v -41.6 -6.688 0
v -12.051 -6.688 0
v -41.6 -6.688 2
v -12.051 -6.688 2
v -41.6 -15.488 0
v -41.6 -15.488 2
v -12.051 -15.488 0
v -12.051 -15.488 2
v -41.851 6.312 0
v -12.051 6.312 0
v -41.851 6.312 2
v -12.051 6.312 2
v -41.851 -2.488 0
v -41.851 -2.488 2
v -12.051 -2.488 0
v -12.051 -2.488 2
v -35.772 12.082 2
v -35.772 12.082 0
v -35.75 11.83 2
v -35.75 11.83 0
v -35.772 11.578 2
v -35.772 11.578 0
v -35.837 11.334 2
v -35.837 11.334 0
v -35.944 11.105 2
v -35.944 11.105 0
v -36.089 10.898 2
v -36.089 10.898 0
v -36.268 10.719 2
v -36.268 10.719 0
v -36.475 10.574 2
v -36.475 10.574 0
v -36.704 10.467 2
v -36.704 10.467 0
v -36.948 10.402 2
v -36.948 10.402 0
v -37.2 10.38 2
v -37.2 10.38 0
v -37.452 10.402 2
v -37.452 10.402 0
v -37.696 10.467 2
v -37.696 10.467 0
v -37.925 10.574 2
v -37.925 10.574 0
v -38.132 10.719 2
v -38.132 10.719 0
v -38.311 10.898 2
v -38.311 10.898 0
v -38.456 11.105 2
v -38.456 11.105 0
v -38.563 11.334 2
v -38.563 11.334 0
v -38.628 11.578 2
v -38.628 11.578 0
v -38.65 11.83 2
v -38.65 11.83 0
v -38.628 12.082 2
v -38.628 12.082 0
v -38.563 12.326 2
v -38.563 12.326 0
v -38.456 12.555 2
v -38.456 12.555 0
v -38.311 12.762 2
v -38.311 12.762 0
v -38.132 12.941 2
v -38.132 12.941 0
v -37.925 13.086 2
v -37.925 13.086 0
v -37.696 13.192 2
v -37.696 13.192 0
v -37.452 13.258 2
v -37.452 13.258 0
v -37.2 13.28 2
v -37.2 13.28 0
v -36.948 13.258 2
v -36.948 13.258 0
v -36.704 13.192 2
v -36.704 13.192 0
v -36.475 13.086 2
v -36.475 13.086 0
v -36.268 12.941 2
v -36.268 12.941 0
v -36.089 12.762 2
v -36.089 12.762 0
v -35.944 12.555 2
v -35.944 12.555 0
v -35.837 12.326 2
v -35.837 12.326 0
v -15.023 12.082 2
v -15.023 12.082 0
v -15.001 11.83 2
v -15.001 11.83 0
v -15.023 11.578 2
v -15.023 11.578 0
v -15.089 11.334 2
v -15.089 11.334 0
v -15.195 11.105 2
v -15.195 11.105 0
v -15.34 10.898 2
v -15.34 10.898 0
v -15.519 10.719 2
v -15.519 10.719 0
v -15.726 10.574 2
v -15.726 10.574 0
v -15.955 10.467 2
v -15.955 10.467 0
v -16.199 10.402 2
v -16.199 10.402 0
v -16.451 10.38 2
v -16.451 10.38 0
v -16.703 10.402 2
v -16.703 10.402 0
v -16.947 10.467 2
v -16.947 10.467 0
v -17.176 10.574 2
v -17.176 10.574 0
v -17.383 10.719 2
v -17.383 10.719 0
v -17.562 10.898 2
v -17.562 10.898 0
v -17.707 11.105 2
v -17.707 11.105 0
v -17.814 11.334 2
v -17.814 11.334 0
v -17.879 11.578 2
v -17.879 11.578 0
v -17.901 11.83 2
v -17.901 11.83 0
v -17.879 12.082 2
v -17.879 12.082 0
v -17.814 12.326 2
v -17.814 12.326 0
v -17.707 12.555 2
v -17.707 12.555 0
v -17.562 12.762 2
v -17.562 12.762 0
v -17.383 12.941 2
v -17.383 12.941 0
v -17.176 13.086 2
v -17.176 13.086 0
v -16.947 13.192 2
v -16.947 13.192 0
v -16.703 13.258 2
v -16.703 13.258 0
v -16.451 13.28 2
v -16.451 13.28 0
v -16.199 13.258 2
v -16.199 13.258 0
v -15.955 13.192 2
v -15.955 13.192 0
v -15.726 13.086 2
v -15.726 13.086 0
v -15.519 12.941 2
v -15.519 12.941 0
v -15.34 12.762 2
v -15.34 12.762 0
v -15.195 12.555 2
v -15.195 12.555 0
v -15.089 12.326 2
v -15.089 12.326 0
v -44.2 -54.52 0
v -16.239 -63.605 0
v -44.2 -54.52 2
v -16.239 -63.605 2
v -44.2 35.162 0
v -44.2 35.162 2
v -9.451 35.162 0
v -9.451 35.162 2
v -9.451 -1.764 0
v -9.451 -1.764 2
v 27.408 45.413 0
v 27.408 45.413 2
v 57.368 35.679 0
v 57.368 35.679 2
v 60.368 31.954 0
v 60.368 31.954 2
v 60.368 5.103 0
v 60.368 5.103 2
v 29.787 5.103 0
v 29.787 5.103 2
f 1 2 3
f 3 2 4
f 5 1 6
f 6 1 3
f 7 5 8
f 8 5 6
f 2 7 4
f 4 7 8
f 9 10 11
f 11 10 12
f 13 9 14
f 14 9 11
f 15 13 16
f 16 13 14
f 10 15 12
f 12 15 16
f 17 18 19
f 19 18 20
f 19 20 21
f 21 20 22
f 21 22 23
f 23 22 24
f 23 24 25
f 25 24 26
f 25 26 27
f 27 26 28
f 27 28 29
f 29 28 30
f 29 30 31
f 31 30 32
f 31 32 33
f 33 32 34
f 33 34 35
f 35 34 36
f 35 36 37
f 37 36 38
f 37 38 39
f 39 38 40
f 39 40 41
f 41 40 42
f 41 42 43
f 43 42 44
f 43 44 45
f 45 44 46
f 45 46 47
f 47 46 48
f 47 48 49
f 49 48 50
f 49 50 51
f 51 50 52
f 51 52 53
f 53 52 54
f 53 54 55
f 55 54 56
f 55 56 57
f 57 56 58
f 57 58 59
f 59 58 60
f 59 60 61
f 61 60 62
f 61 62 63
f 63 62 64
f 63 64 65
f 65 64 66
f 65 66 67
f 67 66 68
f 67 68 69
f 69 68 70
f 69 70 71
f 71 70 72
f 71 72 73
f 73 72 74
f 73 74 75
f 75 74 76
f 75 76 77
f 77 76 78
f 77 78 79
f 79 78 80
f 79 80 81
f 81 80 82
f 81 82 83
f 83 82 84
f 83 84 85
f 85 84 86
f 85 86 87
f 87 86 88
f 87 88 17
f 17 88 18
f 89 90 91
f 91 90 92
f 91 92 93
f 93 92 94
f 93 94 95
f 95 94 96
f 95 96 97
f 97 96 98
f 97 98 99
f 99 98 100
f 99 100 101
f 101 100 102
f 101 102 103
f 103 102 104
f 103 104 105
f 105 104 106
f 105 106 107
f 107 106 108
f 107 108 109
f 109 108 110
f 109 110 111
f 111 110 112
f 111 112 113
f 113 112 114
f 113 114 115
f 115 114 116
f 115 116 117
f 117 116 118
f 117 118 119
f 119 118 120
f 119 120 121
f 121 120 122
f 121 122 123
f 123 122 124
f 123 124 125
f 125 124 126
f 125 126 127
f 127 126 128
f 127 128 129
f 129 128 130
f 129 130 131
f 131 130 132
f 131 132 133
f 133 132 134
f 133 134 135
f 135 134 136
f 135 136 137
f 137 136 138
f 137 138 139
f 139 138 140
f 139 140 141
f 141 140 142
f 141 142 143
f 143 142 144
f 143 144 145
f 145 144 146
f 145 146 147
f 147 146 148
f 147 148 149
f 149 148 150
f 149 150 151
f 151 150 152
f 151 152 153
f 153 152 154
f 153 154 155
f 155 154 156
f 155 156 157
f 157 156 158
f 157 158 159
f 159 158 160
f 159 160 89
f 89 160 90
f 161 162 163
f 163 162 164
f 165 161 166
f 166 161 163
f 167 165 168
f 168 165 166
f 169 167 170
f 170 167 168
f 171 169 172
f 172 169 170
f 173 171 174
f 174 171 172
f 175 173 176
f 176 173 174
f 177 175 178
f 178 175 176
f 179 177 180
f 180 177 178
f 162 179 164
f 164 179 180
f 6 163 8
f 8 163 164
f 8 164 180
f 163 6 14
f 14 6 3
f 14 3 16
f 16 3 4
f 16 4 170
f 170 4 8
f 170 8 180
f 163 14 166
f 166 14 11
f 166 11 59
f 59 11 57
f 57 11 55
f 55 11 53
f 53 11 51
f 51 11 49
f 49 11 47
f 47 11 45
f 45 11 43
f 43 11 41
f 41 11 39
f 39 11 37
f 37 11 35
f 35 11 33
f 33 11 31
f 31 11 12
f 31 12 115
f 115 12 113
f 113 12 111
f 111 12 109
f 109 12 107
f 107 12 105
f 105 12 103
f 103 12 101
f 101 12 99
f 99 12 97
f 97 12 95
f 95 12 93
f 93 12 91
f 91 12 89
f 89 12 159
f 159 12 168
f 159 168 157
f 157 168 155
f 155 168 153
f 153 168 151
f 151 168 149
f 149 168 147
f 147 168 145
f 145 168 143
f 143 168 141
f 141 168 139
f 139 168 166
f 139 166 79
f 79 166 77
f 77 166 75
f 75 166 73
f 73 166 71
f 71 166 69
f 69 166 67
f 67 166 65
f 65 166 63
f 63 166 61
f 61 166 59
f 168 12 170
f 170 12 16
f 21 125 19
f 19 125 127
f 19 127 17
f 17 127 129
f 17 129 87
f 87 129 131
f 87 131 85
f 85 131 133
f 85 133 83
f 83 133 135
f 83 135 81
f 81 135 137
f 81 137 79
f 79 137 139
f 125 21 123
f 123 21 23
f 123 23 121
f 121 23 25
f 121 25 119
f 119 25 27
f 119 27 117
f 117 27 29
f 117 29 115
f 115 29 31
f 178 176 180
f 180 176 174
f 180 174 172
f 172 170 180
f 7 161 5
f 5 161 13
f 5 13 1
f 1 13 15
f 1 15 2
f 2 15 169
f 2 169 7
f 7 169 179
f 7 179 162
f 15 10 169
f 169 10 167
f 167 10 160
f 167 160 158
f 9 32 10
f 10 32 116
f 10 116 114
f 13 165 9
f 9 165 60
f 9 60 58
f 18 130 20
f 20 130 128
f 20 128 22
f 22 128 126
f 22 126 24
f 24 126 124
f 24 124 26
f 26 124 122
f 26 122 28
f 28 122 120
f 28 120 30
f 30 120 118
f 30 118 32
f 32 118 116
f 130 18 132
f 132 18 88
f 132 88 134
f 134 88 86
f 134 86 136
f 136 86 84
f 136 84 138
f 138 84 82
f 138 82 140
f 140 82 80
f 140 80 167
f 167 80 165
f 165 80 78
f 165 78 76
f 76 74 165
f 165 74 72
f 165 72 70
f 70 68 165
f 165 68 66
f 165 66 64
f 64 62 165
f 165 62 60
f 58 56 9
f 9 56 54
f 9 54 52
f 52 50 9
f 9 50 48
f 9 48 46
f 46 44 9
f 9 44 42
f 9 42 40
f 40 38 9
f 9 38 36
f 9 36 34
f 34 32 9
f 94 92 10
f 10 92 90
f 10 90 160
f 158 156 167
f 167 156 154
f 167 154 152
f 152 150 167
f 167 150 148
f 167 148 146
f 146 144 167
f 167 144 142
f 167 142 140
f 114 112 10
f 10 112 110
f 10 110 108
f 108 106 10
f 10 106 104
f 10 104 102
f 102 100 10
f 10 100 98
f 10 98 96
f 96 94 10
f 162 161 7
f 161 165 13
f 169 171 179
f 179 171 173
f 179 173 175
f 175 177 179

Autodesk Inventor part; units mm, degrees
ref_plane "YZ Plane" through (0, 0, 0) normal (1, 0, 0) x (0, 1, 0)
ref_plane "XZ Plane" through (0, 0, 0) normal (0, 1, 0) x (-1, 0, 0)
ref_plane "XY Plane" through (0, 0, 0) normal (0, 0, 1) x (1, 0, 0)
ref_plane "Work Plane1" through (0, 0, 0) normal (0, 0, 1) x (1, 0, 0)
sketch "Sketch1" plane through (0, 0, 0) normal (0, 0, 1) x (1, 0, 0)
  circle A0 centre (-16.4512, 11.8299) radius 1.45 projected
  circle A1 centre (-37.2, 11.8299) radius 1.45 projected
  line L0 (-41.2012, 5.1624) -> (-41.2012, -2.0876) projected
  line L1 (-41.2012, -2.0876) -> (-38.2, -2.0876) projected
  line L2 (-38.2, -2.0876) -> (-38.2, -7.0876) projected
  line L3 (-38.2, -7.0876) -> (-41.2, -7.0876) projected
  line L4 (-41.2, -7.0876) -> (-41.2, -48.1342) projected
  line L5 (-41.2, -48.1342) -> (-20.7938, -54.7646) projected
  line L6 (-20.7938, -54.7646) -> (28.3237, 8.1029) projected
  line L7 (28.3237, 8.1029) -> (54.2162, 8.1029) projected
  line L8 (54.2162, 8.1029) -> (54.2162, 31.454) projected
  line L9 (54.2162, 31.454) -> (27.1735, 40.2407) projected
  line L10 (27.1735, 40.2407) -> (-12.4512, -10.4765) projected
  line L11 (-12.4512, -10.4765) -> (-12.4512, 5.6624) projected
  line L12 (-12.4512, 5.6624) -> (-15.7012, 5.6624) projected
  line L13 (-15.7012, 5.6624) -> (-15.7012, 8.1624) projected
  line L14 (-15.7012, 8.1624) -> (-12.4512, 8.1624) projected
  line L15 (-12.4512, 8.1624) -> (-12.4512, 32.1624) projected
  line L16 (-31.5338, 32.1624) -> (-41.2, 32.1624) projected
  line L17 (-41.2, 32.1624) -> (-41.2, 8.1624) projected
  line L18 (-41.2, 8.1624) -> (-38.2, 8.1624) projected
  line L19 (-38.2, 8.1624) -> (-38.2, 5.6624) projected
  line L20 (-38.2, 5.6624) -> (-41.2, 5.6624) projected
  line L21 (-41.2, 5.6624) -> (-41.2, 5.1624) projected
  line L22 (-41.2, 5.1624) -> (-41.2012, 5.1624) projected
  line L23 (-12.7012, -2.0876) -> (-12.7012, -7.0876) projected
  line L24 (-12.7012, -7.0876) -> (-15.7012, -7.0876) projected
  line L25 (-15.7012, -7.0876) -> (-15.7012, -2.0876) projected
  line L26 (-15.7012, -2.0876) -> (-12.7012, -2.0876) projected
  line L27 (-16.239, -63.6047) -> (29.7869, 5.1029) projected
  line L28 (29.7869, 5.1029) -> (60.3683, 5.1029) projected
  line L29 (60.3683, 5.1029) -> (60.3683, 31.9539) projected
  line L30 (60.3683, 31.9539) -> (57.3683, 35.6787) projected
  line L31 (57.3683, 35.6787) -> (27.4078, 45.4135) projected
  line L32 (27.4078, 45.4135) -> (-9.4512, -1.7639) projected
  line L33 (-9.4512, -1.7639) -> (-9.4512, 35.1624) projected
  line L34 (-9.4512, 35.1624) -> (-42.2, 35.1624) projected
  line L35 (-42.2, 35.1624) -> (-44.2, 35.1624) projected
  line L36 (-44.2, 35.1624) -> (-44.2, -54.5196) projected
  line L37 (-44.2, -54.5196) -> (-16.239, -63.6047) projected
  line L38 (-41.2, 5.1624) -> (-41.2, 5.6624) projected
  line L39 (-41.2, 5.6624) -> (-38.2, 5.6624) projected
  line L40 (-38.2, 5.6624) -> (-38.2, 8.1624) projected
  line L41 (-38.2, 8.1624) -> (-41.2, 8.1624) projected
  line L42 (-41.2, 8.1624) -> (-41.2, 32.1624) projected
  line L43 (-41.2, 32.1624) -> (-12.4512, 32.1624) projected
  line L44 (-12.4512, 32.1624) -> (-12.4512, 8.1624) projected
  line L45 (-12.4512, 8.1624) -> (-15.7012, 8.1624) projected
  line L46 (-15.7012, 8.1624) -> (-15.7012, 5.6624) projected
  line L47 (-15.7012, 5.6624) -> (-12.4512, 5.6624) projected
  line L48 (-12.4512, 5.6624) -> (-12.4512, -10.4765) projected
  line L49 (-12.4512, -10.4765) -> (27.1735, 40.2407) projected
  line L50 (27.1735, 40.2407) -> (54.2162, 31.454) projected
  line L51 (54.2162, 31.454) -> (54.2162, 8.1029) projected
  line L52 (54.2162, 8.1029) -> (28.3237, 8.1029) projected
  line L53 (28.3237, 8.1029) -> (-20.7938, -54.7646) projected
  line L54 (-20.7938, -54.7646) -> (-41.2, -48.1342) projected
  line L55 (-41.2, -48.1342) -> (-41.2, -7.0876) projected
  line L56 (-41.2, -7.0876) -> (-38.2, -7.0876) projected
  line L57 (-38.2, -7.0876) -> (-38.2, -2.0876) projected
  line L58 (-38.2, -2.0876) -> (-41.2012, -2.0876) projected
  line L59 (-41.2012, -2.0876) -> (-41.2012, 5.1624) projected
  line L60 (-41.2012, 5.1624) -> (-41.2, 5.1624) projected
  circle A2 centre (43.9499, 17.9141) radius 1.4 projected
  circle A3 centre (43.9499, 30.4141) radius 1.4 projected
  line L61 (-31.5338, 25.1624) -> (-31.5338, 32.1624) projected
  line L62 (-12.4512, 32.1624) -> (-22.3686, 32.1624) projected
  line L63 (-22.3686, 32.1624) -> (-22.3686, 25.1624) projected
  line L64 (-22.3686, 25.1624) -> (-31.5338, 25.1624) projected
extrude "Extrusion1" add sketch "Sketch1" along normal blind 2 contours L21 L20 L19 L18 L17 L16 L61 L64 L63 L43 L15 L14 L13 L12 L11 L10 L9 L8 L7 L6 L5 L4 L3 L2 L1 L0 | L43 L63 L64 L61 | L23 L24 L25 L26 | L37 L36 L35 L34 L33 L32 L31 L30 L29 L28 L27 | A2 | A3
sketch "Sketch4" plane through (0, 0, 2) normal (0, 0, 1) x (1, 0, 0)
  line L0 (-12.4512, -7.0876) -> (-12.4512, -15.0876) projected
  line L1 (-12.4512, -15.0876) -> (-41.2, -15.0876) projected
  line L2 (-41.2, -15.0876) -> (-41.2, -7.0876) projected
  line L3 (-41.2, -7.0876) -> (-12.4512, -7.0876) projected
  line L4 (-41.4512, -2.0876) -> (-41.4512, 5.9124) projected
  line L5 (-41.4512, 5.9124) -> (-12.4512, 5.9124) projected
  line L6 (-12.4512, 5.9124) -> (-12.4512, -2.0876) projected
  line L7 (-12.4512, -2.0876) -> (-41.4512, -2.0876) projected
  line L8 (31.1264, -1.592) -> (36.5437, 2.1484) projected
  line L9 (36.5437, 2.1484) -> (37.0695, 3.5361) projected
  line L10 (37.0695, 3.5361) -> (60.3683, 9.779) projected
  line L11 (60.3683, 9.779) -> (60.3683, 9.784) projected
  line L12 (60.3683, 9.784) -> (60.3683, 31.9539) projected
  line L13 (60.3683, 31.9539) -> (57.3683, 35.9287) projected
  line L14 (57.3683, 35.9287) -> (27.5635, 45.6128) projected
  line L15 (27.5635, 45.6128) -> (-9.4512, -1.7639) projected
  line L16 (-9.4512, -1.7639) -> (-9.4512, 35.4124) projected
  line L17 (-9.4512, 35.4124) -> (-44.2, 35.4124) projected
  line L18 (-44.2, 35.4124) -> (-44.2, -54.5196) projected
  line L19 (-44.2, -54.5196) -> (-16.239, -63.6047) projected
  line L20 (-16.239, -63.6047) -> (12.0348, -27.416) projected
  line L21 (12.0348, -27.416) -> (25.8734, -27.416) projected
  line L22 (25.8734, -27.416) -> (25.8734, -22.5432) projected
  line L23 (25.8734, -22.5432) -> (22.8734, -22.5432) projected
  line L24 (22.8734, -22.5432) -> (22.8734, -13.5432) projected
  line L25 (22.8734, -13.5432) -> (25.8734, -13.5432) projected
  line L26 (25.8734, -13.5432) -> (25.8734, 0.5361) projected
  line L27 (25.8734, 0.5361) -> (29.5751, 0.5361) projected
  line L28 (29.5751, 0.5361) -> (29.5751, -1.592) projected
  line L29 (29.5751, -1.592) -> (31.1264, -1.592) projected
  line L30 (-41.6, -6.6876) -> (-41.6, -15.4876)
  line L31 (-41.6, -15.4876) -> (-12.0512, -15.4876)
  line L32 (-12.0512, -15.4876) -> (-12.0512, -6.6876)
  line L33 (-12.0512, -6.6876) -> (-41.6, -6.6876)
  line L34 (-41.8512, 6.3124) -> (-41.8512, -2.4876)
  line L35 (-41.8512, -2.4876) -> (-12.0512, -2.4876)
  line L36 (-12.0512, -2.4876) -> (-12.0512, 6.3124)
  line L37 (-12.0512, 6.3124) -> (-41.8512, 6.3124)
  point P0 (0, 0)
  dimension "d13" = 0.4
  dimension "d14" = 0.4
extrude "Extrusion4" cut sketch "Sketch4" against normal through all contours L0 L1 L2 L3 | L4 L5 L6 L7 | L33 L32 L31 L30 | L37 L36 L35 L34
properties part number "cellSTORM_v5_microscope_cover"
